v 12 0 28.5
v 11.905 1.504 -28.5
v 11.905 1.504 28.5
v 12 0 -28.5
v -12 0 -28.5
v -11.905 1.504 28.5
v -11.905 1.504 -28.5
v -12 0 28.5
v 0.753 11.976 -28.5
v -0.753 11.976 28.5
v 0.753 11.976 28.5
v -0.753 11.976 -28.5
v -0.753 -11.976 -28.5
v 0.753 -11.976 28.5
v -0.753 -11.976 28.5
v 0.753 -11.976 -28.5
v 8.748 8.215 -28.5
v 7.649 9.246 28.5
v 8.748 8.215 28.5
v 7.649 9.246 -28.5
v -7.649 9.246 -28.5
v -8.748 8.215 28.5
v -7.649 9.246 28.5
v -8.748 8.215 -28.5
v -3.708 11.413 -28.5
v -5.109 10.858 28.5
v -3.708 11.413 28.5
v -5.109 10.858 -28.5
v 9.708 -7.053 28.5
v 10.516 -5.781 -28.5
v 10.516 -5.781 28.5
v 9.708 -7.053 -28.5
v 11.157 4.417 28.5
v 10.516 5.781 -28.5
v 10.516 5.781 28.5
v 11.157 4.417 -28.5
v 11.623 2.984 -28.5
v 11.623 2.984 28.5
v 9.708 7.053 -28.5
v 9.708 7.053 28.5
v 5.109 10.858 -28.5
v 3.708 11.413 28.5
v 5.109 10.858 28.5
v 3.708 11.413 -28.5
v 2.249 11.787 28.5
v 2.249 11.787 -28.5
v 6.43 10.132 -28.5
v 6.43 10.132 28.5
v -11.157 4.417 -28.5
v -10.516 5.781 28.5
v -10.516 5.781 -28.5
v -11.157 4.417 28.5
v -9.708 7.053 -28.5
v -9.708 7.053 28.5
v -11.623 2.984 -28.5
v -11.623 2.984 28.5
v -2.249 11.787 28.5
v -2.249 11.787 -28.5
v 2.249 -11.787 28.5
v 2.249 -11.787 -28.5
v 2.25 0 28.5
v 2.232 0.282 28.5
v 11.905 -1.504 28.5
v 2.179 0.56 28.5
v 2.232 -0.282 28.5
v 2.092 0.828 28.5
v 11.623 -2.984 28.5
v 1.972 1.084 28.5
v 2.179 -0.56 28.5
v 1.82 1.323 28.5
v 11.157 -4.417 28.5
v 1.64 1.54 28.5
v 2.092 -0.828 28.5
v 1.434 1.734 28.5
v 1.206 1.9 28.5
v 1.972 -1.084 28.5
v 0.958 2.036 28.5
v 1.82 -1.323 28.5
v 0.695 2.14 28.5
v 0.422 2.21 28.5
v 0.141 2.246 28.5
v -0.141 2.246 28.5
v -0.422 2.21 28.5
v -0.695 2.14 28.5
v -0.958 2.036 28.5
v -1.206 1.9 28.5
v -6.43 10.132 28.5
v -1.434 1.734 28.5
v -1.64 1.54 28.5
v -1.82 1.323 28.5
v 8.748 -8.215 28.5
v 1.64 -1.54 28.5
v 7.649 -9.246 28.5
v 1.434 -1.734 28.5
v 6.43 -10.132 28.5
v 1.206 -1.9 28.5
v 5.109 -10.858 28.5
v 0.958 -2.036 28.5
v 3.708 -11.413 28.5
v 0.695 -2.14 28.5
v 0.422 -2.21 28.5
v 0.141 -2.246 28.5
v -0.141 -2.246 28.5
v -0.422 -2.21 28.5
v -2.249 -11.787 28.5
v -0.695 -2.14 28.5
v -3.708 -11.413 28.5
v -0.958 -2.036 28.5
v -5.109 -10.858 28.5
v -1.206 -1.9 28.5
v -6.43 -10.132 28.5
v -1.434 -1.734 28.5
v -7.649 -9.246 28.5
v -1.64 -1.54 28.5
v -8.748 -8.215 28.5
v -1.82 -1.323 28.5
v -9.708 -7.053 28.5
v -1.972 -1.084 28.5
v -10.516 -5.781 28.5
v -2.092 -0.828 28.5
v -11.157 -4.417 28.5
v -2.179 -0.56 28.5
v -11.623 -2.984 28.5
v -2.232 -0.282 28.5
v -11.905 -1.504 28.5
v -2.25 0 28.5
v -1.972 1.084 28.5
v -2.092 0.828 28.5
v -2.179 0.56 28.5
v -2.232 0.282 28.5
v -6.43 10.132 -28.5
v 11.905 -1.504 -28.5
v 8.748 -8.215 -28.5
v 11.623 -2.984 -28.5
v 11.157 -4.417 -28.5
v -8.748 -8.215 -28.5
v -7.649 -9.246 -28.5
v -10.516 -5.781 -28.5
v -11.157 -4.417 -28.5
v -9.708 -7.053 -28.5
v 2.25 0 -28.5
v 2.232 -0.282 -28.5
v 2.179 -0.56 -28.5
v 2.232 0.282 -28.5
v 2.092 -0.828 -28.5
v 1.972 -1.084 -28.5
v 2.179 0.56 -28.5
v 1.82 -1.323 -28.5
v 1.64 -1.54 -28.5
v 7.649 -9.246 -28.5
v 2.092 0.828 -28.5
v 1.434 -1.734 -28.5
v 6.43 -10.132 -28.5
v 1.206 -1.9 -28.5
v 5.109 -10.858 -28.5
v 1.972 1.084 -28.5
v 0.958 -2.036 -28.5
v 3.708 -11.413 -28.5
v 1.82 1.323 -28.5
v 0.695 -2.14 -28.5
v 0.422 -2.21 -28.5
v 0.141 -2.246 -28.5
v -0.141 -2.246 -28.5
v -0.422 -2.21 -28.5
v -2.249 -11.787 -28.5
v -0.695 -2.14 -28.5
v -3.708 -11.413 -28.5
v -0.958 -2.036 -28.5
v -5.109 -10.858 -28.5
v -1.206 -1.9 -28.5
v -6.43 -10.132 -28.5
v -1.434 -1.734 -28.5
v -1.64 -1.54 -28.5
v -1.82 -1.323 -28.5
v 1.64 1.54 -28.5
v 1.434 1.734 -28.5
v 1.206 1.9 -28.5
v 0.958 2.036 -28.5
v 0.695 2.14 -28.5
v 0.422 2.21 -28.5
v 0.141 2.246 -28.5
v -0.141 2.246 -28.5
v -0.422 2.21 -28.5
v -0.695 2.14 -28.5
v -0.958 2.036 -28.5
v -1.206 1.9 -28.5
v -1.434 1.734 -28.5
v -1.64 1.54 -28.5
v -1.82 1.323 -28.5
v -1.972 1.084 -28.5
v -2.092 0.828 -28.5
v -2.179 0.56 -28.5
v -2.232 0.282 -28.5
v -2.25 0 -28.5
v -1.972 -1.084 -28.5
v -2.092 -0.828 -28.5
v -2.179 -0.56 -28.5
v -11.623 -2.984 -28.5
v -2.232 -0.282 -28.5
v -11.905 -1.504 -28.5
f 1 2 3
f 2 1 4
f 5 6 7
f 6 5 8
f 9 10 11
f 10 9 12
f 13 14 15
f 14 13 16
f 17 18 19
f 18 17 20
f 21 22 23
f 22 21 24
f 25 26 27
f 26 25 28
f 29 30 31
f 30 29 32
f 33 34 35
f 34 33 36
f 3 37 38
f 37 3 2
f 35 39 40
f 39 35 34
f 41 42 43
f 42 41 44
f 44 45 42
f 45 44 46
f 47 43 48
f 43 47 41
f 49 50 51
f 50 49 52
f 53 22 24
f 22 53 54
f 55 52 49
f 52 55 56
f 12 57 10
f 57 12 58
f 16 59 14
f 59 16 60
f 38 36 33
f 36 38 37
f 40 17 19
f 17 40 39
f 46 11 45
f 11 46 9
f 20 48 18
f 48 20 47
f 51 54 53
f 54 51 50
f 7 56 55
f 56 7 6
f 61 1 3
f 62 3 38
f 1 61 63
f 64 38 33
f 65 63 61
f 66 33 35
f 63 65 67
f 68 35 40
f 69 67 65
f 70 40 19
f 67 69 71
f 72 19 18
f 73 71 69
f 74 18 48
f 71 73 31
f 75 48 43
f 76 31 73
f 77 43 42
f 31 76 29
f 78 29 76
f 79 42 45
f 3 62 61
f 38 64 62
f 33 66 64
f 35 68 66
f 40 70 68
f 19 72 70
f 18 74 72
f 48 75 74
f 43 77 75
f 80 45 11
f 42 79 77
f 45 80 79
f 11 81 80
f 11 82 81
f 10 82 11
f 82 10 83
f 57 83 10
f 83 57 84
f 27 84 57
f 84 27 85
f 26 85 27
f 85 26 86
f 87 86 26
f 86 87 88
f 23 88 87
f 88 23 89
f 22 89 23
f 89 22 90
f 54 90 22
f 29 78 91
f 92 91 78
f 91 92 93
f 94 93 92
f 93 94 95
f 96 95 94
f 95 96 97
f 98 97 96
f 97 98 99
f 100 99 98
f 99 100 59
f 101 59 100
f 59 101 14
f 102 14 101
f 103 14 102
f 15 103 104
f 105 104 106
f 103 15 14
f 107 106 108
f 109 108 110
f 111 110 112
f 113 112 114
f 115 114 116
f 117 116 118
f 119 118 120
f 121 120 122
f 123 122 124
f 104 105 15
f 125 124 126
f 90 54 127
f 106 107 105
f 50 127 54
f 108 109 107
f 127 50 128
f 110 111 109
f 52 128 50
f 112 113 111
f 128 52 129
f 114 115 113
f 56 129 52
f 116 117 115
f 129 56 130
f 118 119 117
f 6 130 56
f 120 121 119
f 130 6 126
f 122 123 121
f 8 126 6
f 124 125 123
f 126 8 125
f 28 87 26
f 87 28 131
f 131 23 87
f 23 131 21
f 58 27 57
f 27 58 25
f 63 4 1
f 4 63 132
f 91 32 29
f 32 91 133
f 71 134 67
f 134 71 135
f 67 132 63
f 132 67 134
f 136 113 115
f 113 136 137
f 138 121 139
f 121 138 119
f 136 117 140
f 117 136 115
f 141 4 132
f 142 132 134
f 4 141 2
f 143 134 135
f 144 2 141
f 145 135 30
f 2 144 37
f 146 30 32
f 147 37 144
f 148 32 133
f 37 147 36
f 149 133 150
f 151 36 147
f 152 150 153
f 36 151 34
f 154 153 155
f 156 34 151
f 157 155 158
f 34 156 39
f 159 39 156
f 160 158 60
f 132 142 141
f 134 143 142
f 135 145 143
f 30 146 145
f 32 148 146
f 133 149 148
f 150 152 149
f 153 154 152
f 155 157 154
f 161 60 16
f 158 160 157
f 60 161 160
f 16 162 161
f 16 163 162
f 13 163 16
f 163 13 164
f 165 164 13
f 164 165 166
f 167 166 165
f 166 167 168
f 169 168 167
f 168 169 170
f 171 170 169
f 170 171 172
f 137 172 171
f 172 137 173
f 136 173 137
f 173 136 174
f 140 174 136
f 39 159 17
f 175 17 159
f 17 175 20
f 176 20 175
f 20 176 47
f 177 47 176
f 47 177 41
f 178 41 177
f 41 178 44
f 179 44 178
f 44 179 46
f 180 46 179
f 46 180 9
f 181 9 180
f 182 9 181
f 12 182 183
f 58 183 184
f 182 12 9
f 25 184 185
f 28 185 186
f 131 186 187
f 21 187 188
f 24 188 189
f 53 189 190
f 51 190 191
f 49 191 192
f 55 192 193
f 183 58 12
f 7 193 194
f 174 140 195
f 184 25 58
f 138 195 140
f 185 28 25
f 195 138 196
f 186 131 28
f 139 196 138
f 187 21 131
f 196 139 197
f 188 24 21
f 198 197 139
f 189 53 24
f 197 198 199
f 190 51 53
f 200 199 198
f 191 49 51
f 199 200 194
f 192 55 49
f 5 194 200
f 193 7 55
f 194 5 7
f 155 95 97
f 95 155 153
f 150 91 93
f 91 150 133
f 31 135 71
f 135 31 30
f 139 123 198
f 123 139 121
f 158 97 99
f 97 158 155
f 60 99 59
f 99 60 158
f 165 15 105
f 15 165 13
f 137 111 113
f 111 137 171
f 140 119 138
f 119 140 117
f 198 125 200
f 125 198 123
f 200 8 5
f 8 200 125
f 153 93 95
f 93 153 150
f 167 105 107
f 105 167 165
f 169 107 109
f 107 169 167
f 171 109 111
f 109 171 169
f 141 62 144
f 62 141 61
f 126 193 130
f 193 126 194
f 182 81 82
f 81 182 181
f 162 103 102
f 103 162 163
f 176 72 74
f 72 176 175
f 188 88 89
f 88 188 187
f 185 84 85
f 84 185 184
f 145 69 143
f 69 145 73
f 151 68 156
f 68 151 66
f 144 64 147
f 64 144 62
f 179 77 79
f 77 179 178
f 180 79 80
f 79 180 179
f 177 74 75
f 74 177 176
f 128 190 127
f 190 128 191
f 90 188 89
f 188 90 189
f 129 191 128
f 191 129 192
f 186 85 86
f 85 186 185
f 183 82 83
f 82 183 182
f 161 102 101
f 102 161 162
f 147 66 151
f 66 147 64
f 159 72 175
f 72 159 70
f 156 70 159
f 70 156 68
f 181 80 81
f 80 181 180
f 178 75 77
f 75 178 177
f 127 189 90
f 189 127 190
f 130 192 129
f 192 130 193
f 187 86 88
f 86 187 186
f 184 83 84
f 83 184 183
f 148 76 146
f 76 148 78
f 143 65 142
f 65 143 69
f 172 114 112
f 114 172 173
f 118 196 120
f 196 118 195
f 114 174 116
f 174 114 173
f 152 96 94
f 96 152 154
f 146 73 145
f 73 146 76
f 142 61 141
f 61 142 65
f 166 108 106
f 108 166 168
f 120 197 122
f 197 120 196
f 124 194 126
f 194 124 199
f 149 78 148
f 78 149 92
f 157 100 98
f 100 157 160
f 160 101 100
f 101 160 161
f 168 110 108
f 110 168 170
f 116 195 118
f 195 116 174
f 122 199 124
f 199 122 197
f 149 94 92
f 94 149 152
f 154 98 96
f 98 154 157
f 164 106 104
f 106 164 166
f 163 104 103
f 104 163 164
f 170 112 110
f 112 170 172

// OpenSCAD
$fn = 50;


difference() {
	union() {
		translate(v = [0, 0, -28.5000000000]) {
			cylinder(h = 57, r = 12.0000000000);
		}
	}
	union() {
		translate(v = [0, 0, -100.0000000000]) {
			cylinder(h = 200, r = 2.2500000000);
		}
	}
}
